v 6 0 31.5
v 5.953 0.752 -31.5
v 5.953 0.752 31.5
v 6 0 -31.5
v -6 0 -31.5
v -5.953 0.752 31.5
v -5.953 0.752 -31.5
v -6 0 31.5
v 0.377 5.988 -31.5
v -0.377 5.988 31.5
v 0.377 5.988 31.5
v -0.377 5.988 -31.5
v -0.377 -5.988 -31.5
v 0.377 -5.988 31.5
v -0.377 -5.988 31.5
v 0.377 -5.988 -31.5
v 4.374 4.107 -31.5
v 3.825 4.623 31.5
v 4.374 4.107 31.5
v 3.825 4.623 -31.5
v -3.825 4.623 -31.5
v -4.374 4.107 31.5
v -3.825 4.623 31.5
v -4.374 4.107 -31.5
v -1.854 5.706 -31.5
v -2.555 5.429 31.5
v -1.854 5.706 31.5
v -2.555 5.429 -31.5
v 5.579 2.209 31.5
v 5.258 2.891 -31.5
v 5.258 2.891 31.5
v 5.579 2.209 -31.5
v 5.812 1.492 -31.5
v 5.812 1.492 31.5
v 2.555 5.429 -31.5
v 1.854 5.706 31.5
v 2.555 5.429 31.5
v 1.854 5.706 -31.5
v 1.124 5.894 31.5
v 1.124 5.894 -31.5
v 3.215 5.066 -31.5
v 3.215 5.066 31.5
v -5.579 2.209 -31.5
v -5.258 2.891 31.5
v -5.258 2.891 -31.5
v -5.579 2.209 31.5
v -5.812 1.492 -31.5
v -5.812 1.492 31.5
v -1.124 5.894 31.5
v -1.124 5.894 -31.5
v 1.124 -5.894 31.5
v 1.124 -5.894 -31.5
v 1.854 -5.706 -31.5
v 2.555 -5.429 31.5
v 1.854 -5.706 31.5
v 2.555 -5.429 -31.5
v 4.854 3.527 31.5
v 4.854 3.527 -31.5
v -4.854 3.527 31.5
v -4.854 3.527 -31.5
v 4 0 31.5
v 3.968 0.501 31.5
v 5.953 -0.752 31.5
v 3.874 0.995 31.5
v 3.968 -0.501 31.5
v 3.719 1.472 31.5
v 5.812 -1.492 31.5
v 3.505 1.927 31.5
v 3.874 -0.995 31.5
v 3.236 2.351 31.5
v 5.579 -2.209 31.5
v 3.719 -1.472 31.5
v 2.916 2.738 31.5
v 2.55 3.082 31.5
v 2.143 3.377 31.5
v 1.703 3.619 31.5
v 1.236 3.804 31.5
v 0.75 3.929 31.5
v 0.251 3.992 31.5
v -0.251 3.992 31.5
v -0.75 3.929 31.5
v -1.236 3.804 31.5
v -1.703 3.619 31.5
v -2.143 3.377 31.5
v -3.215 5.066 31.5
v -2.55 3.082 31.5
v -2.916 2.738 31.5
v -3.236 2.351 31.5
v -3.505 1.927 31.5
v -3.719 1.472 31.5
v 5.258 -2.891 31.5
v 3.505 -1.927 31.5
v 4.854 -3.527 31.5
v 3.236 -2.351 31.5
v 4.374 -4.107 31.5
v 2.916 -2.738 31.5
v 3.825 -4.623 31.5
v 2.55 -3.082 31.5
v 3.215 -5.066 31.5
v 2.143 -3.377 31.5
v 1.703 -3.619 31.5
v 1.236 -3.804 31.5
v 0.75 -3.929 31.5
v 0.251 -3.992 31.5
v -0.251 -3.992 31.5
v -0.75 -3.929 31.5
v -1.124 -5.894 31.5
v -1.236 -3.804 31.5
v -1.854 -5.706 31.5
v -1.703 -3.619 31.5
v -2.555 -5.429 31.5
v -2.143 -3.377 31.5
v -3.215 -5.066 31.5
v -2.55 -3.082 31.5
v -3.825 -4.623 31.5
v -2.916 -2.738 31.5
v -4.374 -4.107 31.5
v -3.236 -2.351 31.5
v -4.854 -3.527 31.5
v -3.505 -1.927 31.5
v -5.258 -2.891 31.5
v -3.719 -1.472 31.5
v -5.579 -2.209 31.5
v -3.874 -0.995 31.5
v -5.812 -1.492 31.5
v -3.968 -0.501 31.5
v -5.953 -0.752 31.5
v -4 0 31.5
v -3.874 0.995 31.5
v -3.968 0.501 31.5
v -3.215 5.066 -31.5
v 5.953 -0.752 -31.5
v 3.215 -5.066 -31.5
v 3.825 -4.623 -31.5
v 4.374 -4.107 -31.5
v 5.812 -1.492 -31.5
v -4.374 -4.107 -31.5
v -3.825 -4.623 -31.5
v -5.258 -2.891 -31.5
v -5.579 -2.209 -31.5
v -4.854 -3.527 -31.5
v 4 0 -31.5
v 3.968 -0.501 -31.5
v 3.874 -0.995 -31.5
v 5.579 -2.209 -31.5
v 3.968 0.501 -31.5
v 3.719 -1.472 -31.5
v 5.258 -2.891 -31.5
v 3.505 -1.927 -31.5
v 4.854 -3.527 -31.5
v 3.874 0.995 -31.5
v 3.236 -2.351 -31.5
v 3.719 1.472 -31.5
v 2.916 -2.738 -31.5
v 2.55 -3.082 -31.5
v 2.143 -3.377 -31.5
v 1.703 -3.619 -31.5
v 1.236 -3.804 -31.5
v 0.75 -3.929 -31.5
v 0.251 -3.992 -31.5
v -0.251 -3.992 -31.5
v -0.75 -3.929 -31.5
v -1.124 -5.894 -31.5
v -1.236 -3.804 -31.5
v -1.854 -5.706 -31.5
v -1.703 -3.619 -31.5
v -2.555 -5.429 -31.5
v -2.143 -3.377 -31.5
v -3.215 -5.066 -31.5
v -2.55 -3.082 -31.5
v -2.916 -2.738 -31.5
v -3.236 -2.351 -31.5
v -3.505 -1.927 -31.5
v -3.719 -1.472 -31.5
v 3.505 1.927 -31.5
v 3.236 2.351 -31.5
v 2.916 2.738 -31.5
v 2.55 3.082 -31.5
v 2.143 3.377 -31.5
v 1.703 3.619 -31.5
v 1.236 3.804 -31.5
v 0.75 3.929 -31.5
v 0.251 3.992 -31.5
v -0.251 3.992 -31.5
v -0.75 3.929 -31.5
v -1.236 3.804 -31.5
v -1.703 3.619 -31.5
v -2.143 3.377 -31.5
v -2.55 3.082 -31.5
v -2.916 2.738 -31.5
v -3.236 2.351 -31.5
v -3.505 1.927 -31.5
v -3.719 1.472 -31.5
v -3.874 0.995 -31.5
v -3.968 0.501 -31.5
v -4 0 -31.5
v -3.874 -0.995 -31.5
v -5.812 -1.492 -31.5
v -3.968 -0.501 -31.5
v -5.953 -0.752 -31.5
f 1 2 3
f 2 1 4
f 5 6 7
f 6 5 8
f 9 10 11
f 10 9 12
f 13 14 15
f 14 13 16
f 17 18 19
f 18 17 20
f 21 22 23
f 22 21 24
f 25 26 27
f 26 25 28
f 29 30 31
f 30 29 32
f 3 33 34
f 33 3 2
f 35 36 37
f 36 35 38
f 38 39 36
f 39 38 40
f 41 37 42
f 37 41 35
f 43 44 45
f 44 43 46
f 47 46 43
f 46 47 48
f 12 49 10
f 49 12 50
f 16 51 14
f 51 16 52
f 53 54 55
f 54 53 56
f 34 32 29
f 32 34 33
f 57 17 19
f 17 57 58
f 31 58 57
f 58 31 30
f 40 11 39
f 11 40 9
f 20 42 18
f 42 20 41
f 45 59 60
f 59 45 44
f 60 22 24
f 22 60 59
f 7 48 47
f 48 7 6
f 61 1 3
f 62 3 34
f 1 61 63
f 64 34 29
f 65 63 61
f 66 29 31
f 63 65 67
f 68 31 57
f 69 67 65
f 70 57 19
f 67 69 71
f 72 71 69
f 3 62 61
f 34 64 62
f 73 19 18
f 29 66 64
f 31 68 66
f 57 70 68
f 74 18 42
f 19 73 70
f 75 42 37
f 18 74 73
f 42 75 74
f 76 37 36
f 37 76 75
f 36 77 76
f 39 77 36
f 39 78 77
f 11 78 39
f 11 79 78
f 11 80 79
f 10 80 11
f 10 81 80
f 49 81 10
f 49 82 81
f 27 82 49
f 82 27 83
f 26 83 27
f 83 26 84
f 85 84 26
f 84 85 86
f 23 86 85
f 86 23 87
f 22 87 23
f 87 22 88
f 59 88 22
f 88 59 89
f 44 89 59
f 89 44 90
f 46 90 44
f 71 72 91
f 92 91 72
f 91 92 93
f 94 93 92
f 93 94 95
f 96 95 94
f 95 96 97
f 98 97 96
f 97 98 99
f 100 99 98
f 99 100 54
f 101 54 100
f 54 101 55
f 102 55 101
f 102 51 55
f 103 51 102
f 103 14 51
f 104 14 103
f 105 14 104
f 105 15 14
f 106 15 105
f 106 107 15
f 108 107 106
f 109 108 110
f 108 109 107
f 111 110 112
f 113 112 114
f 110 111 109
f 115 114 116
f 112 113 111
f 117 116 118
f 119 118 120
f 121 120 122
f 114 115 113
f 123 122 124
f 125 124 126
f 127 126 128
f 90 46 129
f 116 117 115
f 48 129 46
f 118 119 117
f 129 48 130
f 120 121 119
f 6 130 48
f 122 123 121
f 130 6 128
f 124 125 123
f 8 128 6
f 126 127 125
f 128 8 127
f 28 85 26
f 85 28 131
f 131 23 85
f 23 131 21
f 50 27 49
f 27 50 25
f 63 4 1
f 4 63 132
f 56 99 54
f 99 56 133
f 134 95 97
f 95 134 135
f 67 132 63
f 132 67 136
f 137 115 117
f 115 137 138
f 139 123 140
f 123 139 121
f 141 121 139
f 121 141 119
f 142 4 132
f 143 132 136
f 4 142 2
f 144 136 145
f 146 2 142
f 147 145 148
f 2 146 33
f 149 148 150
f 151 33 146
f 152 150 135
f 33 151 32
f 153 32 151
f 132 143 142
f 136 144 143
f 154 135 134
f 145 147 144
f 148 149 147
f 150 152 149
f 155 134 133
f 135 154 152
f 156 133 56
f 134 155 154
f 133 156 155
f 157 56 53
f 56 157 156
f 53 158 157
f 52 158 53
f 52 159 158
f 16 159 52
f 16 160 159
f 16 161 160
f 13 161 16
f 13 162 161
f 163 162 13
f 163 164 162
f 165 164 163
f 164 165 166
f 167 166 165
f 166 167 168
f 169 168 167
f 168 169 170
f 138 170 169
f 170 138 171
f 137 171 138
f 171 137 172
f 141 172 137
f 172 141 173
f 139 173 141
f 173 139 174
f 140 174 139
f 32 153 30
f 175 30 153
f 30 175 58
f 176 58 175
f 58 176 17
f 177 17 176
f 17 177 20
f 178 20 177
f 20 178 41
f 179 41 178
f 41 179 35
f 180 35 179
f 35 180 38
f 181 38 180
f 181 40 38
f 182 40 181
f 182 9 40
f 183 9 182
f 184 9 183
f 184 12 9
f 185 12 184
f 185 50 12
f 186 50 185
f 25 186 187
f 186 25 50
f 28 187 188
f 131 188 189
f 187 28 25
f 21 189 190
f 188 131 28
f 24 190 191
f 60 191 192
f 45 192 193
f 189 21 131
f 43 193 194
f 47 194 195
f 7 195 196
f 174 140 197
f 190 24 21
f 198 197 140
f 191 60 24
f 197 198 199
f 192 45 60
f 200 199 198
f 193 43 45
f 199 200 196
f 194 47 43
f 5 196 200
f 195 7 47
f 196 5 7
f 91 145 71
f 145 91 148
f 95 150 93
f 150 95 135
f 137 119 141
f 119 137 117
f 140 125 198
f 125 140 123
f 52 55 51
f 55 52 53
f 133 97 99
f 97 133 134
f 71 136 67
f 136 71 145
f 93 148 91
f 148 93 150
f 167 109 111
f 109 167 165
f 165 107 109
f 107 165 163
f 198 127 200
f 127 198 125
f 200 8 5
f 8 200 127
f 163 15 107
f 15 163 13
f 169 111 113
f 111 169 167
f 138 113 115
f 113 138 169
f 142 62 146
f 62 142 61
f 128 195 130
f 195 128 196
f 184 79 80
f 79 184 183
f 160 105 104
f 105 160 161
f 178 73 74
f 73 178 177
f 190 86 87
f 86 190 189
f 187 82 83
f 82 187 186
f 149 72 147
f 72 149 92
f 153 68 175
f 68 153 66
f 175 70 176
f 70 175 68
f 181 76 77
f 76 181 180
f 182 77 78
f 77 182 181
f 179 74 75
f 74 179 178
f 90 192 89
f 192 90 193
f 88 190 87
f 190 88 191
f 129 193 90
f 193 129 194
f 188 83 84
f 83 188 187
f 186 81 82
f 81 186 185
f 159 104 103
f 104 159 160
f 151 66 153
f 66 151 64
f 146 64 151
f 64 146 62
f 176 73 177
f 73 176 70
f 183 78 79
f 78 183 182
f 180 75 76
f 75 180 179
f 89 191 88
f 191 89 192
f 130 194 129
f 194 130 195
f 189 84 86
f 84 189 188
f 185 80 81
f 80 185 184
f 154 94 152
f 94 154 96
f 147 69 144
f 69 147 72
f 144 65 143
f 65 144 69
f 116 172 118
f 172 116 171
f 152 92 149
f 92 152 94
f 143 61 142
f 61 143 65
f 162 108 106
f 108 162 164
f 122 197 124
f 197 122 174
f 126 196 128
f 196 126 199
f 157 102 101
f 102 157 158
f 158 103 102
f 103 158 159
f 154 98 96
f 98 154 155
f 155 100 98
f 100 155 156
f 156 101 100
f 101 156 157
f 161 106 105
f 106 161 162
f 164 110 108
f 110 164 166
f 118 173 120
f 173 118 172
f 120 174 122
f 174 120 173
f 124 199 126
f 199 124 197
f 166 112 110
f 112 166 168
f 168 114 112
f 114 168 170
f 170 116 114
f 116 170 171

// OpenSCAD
$fn = 50;


difference() {
	union() {
		translate(v = [0, 0, -31.5000000000]) {
			cylinder(h = 63, r = 6.0000000000);
		}
	}
	union() {
		translate(v = [0, 0, -100.0000000000]) {
			cylinder(h = 200, r = 4);
		}
	}
}
